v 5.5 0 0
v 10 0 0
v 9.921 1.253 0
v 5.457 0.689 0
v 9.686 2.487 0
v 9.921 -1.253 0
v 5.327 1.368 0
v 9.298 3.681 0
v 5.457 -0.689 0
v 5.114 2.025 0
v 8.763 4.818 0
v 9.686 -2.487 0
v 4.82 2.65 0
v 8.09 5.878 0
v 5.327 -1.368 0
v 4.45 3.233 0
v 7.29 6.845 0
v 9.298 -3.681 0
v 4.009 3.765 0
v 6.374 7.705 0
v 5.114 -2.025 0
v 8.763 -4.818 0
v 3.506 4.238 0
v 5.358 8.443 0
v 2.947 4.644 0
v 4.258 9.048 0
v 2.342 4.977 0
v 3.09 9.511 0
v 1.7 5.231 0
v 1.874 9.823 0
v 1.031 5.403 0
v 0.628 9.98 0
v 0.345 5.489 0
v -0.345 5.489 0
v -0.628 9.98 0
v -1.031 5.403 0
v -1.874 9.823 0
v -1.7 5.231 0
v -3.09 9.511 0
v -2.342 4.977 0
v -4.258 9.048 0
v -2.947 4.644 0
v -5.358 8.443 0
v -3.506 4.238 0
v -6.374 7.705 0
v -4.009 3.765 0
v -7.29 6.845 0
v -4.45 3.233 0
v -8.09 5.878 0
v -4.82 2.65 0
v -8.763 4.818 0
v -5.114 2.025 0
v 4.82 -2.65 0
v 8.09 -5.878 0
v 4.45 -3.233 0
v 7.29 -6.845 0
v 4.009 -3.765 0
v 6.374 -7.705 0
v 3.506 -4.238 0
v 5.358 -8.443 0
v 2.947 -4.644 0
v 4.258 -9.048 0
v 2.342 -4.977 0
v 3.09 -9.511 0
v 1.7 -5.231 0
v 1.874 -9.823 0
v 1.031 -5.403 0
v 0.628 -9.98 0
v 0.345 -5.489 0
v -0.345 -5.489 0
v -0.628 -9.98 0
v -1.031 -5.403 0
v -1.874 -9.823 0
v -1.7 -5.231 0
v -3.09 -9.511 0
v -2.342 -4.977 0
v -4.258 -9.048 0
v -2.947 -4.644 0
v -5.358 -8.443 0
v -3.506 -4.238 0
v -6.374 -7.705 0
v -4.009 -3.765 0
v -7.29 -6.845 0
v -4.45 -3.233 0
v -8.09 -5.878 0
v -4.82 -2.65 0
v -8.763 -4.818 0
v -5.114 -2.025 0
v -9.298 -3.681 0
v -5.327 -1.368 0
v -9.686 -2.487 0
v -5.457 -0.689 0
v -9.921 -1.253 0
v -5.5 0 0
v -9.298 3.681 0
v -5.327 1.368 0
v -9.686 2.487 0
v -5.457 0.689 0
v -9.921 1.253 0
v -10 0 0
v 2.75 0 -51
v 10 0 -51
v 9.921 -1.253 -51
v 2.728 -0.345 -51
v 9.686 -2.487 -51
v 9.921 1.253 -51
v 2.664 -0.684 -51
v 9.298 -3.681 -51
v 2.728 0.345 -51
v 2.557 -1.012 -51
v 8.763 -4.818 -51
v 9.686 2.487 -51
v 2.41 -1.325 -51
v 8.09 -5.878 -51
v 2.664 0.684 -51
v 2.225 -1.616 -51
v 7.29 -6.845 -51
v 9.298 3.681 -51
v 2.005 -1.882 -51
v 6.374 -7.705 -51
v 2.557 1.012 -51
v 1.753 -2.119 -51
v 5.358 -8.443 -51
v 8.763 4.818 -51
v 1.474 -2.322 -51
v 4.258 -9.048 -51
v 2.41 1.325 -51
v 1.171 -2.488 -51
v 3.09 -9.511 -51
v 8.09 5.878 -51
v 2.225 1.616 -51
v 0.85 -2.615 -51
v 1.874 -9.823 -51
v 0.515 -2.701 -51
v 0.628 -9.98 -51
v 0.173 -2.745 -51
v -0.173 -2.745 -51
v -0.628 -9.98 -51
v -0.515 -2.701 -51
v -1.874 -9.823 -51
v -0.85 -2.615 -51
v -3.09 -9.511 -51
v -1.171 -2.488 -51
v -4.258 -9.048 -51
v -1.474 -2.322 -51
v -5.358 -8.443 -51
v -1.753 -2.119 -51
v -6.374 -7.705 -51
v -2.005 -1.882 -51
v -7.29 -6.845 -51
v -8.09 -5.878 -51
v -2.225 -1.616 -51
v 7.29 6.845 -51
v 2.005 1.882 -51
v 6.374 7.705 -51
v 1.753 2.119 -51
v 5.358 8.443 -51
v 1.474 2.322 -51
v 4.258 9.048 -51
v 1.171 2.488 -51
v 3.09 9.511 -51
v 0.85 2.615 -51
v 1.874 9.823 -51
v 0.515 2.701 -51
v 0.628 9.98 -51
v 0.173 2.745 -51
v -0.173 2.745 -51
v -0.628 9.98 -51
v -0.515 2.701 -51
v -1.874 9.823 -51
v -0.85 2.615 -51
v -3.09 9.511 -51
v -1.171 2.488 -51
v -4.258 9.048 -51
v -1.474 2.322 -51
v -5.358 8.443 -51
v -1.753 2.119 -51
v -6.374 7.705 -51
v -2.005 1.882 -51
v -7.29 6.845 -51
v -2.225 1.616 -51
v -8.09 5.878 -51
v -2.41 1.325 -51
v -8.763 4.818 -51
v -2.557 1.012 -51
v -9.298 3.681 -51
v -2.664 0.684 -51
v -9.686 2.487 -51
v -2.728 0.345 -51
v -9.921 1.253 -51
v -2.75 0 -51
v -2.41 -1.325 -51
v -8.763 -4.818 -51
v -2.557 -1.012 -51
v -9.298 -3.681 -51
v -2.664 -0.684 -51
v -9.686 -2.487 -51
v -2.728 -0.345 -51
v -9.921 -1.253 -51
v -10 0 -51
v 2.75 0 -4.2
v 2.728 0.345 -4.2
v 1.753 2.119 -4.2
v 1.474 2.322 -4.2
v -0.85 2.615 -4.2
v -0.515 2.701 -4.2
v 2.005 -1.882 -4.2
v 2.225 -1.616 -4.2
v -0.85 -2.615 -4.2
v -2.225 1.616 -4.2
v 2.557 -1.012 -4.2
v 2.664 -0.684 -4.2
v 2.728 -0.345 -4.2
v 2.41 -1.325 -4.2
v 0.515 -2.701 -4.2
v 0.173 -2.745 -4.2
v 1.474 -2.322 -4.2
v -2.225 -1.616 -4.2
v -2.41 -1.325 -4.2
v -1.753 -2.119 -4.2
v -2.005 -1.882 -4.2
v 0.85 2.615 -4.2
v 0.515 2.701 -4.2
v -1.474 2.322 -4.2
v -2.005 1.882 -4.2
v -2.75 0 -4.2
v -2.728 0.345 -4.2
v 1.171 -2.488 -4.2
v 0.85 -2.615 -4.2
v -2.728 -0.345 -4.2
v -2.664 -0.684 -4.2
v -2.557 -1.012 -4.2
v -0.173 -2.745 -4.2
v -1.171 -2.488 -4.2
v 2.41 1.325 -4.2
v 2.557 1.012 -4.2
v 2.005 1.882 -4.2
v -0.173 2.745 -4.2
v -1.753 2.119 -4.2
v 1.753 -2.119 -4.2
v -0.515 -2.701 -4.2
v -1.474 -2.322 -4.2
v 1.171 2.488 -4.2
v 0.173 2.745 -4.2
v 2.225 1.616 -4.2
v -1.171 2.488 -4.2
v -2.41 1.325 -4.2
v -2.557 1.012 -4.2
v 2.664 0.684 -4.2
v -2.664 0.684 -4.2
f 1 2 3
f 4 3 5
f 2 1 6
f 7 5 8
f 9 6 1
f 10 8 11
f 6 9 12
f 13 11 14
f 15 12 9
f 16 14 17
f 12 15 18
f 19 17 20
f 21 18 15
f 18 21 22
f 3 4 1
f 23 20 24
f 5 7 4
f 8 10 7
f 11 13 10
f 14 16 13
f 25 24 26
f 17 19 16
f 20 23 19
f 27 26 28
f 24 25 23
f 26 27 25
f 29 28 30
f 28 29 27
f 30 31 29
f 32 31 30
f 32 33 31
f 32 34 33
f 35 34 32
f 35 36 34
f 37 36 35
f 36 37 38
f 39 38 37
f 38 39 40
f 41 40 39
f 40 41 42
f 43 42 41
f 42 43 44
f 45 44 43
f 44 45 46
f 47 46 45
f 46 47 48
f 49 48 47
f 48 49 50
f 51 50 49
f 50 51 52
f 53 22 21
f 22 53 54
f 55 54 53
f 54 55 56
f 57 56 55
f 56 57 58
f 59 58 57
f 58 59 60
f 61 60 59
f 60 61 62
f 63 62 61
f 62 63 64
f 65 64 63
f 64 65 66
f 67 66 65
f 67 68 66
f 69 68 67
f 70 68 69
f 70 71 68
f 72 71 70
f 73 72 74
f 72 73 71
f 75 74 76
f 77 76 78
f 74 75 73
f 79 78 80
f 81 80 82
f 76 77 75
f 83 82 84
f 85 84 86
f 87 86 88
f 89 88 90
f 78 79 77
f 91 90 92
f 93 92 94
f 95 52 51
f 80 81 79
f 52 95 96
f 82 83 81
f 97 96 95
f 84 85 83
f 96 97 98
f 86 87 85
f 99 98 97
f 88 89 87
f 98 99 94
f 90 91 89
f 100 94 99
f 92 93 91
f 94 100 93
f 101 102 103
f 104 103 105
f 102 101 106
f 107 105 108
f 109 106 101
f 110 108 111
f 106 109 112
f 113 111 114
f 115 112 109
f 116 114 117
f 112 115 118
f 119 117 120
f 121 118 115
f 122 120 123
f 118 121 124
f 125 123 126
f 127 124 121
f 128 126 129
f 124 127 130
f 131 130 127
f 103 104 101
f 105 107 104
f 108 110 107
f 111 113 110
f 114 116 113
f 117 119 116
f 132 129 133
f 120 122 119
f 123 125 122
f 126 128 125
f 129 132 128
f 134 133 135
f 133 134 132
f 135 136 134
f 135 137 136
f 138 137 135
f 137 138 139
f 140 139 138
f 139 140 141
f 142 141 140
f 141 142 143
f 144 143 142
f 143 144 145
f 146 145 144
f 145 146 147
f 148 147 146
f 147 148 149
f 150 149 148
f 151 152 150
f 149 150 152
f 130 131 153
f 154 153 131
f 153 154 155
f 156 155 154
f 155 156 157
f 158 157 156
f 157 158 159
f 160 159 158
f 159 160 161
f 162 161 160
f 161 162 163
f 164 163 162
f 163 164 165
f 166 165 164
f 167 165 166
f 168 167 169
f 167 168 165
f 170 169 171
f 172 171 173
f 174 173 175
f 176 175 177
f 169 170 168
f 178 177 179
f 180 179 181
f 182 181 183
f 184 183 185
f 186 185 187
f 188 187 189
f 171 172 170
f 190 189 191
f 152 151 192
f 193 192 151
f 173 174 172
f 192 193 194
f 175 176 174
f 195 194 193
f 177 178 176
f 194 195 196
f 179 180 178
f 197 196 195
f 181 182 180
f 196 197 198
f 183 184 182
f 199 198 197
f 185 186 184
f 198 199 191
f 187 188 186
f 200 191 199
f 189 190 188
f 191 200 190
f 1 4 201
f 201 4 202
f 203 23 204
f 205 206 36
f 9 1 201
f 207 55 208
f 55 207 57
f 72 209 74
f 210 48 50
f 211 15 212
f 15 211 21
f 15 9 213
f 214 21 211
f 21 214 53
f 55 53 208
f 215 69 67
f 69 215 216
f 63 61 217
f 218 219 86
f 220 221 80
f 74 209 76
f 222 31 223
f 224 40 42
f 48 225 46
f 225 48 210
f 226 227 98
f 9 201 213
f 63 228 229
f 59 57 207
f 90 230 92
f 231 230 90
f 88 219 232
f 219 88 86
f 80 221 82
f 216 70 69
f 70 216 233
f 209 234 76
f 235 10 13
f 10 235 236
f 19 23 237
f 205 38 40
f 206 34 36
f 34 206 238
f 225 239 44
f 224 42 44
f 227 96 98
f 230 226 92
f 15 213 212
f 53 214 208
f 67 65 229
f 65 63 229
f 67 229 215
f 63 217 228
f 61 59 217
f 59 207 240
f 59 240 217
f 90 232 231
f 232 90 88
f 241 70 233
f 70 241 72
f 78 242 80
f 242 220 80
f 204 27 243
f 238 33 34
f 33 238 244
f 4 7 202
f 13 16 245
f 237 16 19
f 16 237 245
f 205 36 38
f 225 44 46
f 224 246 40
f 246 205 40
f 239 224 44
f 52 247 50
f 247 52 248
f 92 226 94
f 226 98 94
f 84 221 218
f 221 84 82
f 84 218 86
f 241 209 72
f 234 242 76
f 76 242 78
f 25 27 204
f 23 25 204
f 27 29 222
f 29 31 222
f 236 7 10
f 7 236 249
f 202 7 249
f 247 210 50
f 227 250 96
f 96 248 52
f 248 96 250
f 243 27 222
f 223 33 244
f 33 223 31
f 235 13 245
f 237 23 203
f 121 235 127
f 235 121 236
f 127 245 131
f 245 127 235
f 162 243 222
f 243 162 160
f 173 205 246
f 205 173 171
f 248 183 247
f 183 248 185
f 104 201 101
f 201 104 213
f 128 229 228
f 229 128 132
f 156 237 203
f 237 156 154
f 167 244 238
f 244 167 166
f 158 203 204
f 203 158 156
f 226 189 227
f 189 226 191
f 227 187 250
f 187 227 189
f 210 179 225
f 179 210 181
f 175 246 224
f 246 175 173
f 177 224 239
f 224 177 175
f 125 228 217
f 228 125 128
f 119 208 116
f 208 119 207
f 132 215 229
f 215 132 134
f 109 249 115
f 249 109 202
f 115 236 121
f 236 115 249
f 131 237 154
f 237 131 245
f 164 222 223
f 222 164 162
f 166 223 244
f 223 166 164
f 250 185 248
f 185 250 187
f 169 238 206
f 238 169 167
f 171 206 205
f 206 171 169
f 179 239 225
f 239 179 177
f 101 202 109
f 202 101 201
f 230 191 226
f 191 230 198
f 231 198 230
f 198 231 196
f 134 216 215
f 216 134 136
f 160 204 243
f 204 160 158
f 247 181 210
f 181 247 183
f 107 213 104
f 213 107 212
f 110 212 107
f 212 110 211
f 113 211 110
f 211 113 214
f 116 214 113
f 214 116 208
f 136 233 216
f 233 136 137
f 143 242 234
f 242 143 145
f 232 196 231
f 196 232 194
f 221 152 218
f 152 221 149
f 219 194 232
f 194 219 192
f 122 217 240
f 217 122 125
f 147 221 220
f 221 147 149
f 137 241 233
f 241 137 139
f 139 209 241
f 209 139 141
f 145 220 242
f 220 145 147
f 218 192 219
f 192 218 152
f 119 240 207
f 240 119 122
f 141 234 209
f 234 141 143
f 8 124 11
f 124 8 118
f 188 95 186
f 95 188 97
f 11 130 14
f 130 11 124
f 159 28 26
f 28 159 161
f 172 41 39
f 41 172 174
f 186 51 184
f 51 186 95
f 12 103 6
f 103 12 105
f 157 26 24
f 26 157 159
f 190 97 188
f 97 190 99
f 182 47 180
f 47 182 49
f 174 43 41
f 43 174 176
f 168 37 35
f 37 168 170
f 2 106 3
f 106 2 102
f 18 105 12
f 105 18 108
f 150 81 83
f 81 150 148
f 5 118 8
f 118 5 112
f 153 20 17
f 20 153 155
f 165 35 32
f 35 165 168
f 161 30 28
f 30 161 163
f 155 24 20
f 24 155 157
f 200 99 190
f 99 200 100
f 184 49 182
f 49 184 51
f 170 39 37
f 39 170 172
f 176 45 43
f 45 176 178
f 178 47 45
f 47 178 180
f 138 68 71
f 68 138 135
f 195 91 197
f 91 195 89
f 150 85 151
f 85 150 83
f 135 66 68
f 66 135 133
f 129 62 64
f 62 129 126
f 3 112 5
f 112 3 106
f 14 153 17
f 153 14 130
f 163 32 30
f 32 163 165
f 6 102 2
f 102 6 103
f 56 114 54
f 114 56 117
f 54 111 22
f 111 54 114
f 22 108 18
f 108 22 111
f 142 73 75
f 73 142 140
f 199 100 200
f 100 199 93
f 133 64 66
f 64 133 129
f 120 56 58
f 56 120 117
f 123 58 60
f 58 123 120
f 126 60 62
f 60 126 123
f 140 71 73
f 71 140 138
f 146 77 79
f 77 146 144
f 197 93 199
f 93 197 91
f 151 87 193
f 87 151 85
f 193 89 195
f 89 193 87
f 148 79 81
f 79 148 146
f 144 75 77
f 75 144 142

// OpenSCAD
$fn = 50;


difference() {
	union() {
		translate(v = [0, 0, -51.0000000000]) {
			cylinder(h = 51, r = 10.0000000000);
		}
		cylinder(h = 0, r = 16.0000000000);
	}
	union() {
		translate(v = [0, 0, 0]) {
			rotate(a = [0, 0, 0]) {
				difference() {
					union() {
						#translate(v = [0, 0, -51.0000000000]) {
							cylinder(h = 51, r = 2.2500000000);
						}
						#translate(v = [0, 0, -4.2000000000]) {
							cylinder(h = 4.2000000000, r = 10.0000000000, r1 = 2.7500000000, r2 = 5.5000000000);
						}
						#translate(v = [0, 0, -51.0000000000]) {
							cylinder(h = 51, r = 2.7500000000);
						}
						#translate(v = [0, 0, -51.0000000000]) {
							cylinder(h = 51, r = 2.2500000000);
						}
					}
					union();
				}
			}
		}
	}
}
